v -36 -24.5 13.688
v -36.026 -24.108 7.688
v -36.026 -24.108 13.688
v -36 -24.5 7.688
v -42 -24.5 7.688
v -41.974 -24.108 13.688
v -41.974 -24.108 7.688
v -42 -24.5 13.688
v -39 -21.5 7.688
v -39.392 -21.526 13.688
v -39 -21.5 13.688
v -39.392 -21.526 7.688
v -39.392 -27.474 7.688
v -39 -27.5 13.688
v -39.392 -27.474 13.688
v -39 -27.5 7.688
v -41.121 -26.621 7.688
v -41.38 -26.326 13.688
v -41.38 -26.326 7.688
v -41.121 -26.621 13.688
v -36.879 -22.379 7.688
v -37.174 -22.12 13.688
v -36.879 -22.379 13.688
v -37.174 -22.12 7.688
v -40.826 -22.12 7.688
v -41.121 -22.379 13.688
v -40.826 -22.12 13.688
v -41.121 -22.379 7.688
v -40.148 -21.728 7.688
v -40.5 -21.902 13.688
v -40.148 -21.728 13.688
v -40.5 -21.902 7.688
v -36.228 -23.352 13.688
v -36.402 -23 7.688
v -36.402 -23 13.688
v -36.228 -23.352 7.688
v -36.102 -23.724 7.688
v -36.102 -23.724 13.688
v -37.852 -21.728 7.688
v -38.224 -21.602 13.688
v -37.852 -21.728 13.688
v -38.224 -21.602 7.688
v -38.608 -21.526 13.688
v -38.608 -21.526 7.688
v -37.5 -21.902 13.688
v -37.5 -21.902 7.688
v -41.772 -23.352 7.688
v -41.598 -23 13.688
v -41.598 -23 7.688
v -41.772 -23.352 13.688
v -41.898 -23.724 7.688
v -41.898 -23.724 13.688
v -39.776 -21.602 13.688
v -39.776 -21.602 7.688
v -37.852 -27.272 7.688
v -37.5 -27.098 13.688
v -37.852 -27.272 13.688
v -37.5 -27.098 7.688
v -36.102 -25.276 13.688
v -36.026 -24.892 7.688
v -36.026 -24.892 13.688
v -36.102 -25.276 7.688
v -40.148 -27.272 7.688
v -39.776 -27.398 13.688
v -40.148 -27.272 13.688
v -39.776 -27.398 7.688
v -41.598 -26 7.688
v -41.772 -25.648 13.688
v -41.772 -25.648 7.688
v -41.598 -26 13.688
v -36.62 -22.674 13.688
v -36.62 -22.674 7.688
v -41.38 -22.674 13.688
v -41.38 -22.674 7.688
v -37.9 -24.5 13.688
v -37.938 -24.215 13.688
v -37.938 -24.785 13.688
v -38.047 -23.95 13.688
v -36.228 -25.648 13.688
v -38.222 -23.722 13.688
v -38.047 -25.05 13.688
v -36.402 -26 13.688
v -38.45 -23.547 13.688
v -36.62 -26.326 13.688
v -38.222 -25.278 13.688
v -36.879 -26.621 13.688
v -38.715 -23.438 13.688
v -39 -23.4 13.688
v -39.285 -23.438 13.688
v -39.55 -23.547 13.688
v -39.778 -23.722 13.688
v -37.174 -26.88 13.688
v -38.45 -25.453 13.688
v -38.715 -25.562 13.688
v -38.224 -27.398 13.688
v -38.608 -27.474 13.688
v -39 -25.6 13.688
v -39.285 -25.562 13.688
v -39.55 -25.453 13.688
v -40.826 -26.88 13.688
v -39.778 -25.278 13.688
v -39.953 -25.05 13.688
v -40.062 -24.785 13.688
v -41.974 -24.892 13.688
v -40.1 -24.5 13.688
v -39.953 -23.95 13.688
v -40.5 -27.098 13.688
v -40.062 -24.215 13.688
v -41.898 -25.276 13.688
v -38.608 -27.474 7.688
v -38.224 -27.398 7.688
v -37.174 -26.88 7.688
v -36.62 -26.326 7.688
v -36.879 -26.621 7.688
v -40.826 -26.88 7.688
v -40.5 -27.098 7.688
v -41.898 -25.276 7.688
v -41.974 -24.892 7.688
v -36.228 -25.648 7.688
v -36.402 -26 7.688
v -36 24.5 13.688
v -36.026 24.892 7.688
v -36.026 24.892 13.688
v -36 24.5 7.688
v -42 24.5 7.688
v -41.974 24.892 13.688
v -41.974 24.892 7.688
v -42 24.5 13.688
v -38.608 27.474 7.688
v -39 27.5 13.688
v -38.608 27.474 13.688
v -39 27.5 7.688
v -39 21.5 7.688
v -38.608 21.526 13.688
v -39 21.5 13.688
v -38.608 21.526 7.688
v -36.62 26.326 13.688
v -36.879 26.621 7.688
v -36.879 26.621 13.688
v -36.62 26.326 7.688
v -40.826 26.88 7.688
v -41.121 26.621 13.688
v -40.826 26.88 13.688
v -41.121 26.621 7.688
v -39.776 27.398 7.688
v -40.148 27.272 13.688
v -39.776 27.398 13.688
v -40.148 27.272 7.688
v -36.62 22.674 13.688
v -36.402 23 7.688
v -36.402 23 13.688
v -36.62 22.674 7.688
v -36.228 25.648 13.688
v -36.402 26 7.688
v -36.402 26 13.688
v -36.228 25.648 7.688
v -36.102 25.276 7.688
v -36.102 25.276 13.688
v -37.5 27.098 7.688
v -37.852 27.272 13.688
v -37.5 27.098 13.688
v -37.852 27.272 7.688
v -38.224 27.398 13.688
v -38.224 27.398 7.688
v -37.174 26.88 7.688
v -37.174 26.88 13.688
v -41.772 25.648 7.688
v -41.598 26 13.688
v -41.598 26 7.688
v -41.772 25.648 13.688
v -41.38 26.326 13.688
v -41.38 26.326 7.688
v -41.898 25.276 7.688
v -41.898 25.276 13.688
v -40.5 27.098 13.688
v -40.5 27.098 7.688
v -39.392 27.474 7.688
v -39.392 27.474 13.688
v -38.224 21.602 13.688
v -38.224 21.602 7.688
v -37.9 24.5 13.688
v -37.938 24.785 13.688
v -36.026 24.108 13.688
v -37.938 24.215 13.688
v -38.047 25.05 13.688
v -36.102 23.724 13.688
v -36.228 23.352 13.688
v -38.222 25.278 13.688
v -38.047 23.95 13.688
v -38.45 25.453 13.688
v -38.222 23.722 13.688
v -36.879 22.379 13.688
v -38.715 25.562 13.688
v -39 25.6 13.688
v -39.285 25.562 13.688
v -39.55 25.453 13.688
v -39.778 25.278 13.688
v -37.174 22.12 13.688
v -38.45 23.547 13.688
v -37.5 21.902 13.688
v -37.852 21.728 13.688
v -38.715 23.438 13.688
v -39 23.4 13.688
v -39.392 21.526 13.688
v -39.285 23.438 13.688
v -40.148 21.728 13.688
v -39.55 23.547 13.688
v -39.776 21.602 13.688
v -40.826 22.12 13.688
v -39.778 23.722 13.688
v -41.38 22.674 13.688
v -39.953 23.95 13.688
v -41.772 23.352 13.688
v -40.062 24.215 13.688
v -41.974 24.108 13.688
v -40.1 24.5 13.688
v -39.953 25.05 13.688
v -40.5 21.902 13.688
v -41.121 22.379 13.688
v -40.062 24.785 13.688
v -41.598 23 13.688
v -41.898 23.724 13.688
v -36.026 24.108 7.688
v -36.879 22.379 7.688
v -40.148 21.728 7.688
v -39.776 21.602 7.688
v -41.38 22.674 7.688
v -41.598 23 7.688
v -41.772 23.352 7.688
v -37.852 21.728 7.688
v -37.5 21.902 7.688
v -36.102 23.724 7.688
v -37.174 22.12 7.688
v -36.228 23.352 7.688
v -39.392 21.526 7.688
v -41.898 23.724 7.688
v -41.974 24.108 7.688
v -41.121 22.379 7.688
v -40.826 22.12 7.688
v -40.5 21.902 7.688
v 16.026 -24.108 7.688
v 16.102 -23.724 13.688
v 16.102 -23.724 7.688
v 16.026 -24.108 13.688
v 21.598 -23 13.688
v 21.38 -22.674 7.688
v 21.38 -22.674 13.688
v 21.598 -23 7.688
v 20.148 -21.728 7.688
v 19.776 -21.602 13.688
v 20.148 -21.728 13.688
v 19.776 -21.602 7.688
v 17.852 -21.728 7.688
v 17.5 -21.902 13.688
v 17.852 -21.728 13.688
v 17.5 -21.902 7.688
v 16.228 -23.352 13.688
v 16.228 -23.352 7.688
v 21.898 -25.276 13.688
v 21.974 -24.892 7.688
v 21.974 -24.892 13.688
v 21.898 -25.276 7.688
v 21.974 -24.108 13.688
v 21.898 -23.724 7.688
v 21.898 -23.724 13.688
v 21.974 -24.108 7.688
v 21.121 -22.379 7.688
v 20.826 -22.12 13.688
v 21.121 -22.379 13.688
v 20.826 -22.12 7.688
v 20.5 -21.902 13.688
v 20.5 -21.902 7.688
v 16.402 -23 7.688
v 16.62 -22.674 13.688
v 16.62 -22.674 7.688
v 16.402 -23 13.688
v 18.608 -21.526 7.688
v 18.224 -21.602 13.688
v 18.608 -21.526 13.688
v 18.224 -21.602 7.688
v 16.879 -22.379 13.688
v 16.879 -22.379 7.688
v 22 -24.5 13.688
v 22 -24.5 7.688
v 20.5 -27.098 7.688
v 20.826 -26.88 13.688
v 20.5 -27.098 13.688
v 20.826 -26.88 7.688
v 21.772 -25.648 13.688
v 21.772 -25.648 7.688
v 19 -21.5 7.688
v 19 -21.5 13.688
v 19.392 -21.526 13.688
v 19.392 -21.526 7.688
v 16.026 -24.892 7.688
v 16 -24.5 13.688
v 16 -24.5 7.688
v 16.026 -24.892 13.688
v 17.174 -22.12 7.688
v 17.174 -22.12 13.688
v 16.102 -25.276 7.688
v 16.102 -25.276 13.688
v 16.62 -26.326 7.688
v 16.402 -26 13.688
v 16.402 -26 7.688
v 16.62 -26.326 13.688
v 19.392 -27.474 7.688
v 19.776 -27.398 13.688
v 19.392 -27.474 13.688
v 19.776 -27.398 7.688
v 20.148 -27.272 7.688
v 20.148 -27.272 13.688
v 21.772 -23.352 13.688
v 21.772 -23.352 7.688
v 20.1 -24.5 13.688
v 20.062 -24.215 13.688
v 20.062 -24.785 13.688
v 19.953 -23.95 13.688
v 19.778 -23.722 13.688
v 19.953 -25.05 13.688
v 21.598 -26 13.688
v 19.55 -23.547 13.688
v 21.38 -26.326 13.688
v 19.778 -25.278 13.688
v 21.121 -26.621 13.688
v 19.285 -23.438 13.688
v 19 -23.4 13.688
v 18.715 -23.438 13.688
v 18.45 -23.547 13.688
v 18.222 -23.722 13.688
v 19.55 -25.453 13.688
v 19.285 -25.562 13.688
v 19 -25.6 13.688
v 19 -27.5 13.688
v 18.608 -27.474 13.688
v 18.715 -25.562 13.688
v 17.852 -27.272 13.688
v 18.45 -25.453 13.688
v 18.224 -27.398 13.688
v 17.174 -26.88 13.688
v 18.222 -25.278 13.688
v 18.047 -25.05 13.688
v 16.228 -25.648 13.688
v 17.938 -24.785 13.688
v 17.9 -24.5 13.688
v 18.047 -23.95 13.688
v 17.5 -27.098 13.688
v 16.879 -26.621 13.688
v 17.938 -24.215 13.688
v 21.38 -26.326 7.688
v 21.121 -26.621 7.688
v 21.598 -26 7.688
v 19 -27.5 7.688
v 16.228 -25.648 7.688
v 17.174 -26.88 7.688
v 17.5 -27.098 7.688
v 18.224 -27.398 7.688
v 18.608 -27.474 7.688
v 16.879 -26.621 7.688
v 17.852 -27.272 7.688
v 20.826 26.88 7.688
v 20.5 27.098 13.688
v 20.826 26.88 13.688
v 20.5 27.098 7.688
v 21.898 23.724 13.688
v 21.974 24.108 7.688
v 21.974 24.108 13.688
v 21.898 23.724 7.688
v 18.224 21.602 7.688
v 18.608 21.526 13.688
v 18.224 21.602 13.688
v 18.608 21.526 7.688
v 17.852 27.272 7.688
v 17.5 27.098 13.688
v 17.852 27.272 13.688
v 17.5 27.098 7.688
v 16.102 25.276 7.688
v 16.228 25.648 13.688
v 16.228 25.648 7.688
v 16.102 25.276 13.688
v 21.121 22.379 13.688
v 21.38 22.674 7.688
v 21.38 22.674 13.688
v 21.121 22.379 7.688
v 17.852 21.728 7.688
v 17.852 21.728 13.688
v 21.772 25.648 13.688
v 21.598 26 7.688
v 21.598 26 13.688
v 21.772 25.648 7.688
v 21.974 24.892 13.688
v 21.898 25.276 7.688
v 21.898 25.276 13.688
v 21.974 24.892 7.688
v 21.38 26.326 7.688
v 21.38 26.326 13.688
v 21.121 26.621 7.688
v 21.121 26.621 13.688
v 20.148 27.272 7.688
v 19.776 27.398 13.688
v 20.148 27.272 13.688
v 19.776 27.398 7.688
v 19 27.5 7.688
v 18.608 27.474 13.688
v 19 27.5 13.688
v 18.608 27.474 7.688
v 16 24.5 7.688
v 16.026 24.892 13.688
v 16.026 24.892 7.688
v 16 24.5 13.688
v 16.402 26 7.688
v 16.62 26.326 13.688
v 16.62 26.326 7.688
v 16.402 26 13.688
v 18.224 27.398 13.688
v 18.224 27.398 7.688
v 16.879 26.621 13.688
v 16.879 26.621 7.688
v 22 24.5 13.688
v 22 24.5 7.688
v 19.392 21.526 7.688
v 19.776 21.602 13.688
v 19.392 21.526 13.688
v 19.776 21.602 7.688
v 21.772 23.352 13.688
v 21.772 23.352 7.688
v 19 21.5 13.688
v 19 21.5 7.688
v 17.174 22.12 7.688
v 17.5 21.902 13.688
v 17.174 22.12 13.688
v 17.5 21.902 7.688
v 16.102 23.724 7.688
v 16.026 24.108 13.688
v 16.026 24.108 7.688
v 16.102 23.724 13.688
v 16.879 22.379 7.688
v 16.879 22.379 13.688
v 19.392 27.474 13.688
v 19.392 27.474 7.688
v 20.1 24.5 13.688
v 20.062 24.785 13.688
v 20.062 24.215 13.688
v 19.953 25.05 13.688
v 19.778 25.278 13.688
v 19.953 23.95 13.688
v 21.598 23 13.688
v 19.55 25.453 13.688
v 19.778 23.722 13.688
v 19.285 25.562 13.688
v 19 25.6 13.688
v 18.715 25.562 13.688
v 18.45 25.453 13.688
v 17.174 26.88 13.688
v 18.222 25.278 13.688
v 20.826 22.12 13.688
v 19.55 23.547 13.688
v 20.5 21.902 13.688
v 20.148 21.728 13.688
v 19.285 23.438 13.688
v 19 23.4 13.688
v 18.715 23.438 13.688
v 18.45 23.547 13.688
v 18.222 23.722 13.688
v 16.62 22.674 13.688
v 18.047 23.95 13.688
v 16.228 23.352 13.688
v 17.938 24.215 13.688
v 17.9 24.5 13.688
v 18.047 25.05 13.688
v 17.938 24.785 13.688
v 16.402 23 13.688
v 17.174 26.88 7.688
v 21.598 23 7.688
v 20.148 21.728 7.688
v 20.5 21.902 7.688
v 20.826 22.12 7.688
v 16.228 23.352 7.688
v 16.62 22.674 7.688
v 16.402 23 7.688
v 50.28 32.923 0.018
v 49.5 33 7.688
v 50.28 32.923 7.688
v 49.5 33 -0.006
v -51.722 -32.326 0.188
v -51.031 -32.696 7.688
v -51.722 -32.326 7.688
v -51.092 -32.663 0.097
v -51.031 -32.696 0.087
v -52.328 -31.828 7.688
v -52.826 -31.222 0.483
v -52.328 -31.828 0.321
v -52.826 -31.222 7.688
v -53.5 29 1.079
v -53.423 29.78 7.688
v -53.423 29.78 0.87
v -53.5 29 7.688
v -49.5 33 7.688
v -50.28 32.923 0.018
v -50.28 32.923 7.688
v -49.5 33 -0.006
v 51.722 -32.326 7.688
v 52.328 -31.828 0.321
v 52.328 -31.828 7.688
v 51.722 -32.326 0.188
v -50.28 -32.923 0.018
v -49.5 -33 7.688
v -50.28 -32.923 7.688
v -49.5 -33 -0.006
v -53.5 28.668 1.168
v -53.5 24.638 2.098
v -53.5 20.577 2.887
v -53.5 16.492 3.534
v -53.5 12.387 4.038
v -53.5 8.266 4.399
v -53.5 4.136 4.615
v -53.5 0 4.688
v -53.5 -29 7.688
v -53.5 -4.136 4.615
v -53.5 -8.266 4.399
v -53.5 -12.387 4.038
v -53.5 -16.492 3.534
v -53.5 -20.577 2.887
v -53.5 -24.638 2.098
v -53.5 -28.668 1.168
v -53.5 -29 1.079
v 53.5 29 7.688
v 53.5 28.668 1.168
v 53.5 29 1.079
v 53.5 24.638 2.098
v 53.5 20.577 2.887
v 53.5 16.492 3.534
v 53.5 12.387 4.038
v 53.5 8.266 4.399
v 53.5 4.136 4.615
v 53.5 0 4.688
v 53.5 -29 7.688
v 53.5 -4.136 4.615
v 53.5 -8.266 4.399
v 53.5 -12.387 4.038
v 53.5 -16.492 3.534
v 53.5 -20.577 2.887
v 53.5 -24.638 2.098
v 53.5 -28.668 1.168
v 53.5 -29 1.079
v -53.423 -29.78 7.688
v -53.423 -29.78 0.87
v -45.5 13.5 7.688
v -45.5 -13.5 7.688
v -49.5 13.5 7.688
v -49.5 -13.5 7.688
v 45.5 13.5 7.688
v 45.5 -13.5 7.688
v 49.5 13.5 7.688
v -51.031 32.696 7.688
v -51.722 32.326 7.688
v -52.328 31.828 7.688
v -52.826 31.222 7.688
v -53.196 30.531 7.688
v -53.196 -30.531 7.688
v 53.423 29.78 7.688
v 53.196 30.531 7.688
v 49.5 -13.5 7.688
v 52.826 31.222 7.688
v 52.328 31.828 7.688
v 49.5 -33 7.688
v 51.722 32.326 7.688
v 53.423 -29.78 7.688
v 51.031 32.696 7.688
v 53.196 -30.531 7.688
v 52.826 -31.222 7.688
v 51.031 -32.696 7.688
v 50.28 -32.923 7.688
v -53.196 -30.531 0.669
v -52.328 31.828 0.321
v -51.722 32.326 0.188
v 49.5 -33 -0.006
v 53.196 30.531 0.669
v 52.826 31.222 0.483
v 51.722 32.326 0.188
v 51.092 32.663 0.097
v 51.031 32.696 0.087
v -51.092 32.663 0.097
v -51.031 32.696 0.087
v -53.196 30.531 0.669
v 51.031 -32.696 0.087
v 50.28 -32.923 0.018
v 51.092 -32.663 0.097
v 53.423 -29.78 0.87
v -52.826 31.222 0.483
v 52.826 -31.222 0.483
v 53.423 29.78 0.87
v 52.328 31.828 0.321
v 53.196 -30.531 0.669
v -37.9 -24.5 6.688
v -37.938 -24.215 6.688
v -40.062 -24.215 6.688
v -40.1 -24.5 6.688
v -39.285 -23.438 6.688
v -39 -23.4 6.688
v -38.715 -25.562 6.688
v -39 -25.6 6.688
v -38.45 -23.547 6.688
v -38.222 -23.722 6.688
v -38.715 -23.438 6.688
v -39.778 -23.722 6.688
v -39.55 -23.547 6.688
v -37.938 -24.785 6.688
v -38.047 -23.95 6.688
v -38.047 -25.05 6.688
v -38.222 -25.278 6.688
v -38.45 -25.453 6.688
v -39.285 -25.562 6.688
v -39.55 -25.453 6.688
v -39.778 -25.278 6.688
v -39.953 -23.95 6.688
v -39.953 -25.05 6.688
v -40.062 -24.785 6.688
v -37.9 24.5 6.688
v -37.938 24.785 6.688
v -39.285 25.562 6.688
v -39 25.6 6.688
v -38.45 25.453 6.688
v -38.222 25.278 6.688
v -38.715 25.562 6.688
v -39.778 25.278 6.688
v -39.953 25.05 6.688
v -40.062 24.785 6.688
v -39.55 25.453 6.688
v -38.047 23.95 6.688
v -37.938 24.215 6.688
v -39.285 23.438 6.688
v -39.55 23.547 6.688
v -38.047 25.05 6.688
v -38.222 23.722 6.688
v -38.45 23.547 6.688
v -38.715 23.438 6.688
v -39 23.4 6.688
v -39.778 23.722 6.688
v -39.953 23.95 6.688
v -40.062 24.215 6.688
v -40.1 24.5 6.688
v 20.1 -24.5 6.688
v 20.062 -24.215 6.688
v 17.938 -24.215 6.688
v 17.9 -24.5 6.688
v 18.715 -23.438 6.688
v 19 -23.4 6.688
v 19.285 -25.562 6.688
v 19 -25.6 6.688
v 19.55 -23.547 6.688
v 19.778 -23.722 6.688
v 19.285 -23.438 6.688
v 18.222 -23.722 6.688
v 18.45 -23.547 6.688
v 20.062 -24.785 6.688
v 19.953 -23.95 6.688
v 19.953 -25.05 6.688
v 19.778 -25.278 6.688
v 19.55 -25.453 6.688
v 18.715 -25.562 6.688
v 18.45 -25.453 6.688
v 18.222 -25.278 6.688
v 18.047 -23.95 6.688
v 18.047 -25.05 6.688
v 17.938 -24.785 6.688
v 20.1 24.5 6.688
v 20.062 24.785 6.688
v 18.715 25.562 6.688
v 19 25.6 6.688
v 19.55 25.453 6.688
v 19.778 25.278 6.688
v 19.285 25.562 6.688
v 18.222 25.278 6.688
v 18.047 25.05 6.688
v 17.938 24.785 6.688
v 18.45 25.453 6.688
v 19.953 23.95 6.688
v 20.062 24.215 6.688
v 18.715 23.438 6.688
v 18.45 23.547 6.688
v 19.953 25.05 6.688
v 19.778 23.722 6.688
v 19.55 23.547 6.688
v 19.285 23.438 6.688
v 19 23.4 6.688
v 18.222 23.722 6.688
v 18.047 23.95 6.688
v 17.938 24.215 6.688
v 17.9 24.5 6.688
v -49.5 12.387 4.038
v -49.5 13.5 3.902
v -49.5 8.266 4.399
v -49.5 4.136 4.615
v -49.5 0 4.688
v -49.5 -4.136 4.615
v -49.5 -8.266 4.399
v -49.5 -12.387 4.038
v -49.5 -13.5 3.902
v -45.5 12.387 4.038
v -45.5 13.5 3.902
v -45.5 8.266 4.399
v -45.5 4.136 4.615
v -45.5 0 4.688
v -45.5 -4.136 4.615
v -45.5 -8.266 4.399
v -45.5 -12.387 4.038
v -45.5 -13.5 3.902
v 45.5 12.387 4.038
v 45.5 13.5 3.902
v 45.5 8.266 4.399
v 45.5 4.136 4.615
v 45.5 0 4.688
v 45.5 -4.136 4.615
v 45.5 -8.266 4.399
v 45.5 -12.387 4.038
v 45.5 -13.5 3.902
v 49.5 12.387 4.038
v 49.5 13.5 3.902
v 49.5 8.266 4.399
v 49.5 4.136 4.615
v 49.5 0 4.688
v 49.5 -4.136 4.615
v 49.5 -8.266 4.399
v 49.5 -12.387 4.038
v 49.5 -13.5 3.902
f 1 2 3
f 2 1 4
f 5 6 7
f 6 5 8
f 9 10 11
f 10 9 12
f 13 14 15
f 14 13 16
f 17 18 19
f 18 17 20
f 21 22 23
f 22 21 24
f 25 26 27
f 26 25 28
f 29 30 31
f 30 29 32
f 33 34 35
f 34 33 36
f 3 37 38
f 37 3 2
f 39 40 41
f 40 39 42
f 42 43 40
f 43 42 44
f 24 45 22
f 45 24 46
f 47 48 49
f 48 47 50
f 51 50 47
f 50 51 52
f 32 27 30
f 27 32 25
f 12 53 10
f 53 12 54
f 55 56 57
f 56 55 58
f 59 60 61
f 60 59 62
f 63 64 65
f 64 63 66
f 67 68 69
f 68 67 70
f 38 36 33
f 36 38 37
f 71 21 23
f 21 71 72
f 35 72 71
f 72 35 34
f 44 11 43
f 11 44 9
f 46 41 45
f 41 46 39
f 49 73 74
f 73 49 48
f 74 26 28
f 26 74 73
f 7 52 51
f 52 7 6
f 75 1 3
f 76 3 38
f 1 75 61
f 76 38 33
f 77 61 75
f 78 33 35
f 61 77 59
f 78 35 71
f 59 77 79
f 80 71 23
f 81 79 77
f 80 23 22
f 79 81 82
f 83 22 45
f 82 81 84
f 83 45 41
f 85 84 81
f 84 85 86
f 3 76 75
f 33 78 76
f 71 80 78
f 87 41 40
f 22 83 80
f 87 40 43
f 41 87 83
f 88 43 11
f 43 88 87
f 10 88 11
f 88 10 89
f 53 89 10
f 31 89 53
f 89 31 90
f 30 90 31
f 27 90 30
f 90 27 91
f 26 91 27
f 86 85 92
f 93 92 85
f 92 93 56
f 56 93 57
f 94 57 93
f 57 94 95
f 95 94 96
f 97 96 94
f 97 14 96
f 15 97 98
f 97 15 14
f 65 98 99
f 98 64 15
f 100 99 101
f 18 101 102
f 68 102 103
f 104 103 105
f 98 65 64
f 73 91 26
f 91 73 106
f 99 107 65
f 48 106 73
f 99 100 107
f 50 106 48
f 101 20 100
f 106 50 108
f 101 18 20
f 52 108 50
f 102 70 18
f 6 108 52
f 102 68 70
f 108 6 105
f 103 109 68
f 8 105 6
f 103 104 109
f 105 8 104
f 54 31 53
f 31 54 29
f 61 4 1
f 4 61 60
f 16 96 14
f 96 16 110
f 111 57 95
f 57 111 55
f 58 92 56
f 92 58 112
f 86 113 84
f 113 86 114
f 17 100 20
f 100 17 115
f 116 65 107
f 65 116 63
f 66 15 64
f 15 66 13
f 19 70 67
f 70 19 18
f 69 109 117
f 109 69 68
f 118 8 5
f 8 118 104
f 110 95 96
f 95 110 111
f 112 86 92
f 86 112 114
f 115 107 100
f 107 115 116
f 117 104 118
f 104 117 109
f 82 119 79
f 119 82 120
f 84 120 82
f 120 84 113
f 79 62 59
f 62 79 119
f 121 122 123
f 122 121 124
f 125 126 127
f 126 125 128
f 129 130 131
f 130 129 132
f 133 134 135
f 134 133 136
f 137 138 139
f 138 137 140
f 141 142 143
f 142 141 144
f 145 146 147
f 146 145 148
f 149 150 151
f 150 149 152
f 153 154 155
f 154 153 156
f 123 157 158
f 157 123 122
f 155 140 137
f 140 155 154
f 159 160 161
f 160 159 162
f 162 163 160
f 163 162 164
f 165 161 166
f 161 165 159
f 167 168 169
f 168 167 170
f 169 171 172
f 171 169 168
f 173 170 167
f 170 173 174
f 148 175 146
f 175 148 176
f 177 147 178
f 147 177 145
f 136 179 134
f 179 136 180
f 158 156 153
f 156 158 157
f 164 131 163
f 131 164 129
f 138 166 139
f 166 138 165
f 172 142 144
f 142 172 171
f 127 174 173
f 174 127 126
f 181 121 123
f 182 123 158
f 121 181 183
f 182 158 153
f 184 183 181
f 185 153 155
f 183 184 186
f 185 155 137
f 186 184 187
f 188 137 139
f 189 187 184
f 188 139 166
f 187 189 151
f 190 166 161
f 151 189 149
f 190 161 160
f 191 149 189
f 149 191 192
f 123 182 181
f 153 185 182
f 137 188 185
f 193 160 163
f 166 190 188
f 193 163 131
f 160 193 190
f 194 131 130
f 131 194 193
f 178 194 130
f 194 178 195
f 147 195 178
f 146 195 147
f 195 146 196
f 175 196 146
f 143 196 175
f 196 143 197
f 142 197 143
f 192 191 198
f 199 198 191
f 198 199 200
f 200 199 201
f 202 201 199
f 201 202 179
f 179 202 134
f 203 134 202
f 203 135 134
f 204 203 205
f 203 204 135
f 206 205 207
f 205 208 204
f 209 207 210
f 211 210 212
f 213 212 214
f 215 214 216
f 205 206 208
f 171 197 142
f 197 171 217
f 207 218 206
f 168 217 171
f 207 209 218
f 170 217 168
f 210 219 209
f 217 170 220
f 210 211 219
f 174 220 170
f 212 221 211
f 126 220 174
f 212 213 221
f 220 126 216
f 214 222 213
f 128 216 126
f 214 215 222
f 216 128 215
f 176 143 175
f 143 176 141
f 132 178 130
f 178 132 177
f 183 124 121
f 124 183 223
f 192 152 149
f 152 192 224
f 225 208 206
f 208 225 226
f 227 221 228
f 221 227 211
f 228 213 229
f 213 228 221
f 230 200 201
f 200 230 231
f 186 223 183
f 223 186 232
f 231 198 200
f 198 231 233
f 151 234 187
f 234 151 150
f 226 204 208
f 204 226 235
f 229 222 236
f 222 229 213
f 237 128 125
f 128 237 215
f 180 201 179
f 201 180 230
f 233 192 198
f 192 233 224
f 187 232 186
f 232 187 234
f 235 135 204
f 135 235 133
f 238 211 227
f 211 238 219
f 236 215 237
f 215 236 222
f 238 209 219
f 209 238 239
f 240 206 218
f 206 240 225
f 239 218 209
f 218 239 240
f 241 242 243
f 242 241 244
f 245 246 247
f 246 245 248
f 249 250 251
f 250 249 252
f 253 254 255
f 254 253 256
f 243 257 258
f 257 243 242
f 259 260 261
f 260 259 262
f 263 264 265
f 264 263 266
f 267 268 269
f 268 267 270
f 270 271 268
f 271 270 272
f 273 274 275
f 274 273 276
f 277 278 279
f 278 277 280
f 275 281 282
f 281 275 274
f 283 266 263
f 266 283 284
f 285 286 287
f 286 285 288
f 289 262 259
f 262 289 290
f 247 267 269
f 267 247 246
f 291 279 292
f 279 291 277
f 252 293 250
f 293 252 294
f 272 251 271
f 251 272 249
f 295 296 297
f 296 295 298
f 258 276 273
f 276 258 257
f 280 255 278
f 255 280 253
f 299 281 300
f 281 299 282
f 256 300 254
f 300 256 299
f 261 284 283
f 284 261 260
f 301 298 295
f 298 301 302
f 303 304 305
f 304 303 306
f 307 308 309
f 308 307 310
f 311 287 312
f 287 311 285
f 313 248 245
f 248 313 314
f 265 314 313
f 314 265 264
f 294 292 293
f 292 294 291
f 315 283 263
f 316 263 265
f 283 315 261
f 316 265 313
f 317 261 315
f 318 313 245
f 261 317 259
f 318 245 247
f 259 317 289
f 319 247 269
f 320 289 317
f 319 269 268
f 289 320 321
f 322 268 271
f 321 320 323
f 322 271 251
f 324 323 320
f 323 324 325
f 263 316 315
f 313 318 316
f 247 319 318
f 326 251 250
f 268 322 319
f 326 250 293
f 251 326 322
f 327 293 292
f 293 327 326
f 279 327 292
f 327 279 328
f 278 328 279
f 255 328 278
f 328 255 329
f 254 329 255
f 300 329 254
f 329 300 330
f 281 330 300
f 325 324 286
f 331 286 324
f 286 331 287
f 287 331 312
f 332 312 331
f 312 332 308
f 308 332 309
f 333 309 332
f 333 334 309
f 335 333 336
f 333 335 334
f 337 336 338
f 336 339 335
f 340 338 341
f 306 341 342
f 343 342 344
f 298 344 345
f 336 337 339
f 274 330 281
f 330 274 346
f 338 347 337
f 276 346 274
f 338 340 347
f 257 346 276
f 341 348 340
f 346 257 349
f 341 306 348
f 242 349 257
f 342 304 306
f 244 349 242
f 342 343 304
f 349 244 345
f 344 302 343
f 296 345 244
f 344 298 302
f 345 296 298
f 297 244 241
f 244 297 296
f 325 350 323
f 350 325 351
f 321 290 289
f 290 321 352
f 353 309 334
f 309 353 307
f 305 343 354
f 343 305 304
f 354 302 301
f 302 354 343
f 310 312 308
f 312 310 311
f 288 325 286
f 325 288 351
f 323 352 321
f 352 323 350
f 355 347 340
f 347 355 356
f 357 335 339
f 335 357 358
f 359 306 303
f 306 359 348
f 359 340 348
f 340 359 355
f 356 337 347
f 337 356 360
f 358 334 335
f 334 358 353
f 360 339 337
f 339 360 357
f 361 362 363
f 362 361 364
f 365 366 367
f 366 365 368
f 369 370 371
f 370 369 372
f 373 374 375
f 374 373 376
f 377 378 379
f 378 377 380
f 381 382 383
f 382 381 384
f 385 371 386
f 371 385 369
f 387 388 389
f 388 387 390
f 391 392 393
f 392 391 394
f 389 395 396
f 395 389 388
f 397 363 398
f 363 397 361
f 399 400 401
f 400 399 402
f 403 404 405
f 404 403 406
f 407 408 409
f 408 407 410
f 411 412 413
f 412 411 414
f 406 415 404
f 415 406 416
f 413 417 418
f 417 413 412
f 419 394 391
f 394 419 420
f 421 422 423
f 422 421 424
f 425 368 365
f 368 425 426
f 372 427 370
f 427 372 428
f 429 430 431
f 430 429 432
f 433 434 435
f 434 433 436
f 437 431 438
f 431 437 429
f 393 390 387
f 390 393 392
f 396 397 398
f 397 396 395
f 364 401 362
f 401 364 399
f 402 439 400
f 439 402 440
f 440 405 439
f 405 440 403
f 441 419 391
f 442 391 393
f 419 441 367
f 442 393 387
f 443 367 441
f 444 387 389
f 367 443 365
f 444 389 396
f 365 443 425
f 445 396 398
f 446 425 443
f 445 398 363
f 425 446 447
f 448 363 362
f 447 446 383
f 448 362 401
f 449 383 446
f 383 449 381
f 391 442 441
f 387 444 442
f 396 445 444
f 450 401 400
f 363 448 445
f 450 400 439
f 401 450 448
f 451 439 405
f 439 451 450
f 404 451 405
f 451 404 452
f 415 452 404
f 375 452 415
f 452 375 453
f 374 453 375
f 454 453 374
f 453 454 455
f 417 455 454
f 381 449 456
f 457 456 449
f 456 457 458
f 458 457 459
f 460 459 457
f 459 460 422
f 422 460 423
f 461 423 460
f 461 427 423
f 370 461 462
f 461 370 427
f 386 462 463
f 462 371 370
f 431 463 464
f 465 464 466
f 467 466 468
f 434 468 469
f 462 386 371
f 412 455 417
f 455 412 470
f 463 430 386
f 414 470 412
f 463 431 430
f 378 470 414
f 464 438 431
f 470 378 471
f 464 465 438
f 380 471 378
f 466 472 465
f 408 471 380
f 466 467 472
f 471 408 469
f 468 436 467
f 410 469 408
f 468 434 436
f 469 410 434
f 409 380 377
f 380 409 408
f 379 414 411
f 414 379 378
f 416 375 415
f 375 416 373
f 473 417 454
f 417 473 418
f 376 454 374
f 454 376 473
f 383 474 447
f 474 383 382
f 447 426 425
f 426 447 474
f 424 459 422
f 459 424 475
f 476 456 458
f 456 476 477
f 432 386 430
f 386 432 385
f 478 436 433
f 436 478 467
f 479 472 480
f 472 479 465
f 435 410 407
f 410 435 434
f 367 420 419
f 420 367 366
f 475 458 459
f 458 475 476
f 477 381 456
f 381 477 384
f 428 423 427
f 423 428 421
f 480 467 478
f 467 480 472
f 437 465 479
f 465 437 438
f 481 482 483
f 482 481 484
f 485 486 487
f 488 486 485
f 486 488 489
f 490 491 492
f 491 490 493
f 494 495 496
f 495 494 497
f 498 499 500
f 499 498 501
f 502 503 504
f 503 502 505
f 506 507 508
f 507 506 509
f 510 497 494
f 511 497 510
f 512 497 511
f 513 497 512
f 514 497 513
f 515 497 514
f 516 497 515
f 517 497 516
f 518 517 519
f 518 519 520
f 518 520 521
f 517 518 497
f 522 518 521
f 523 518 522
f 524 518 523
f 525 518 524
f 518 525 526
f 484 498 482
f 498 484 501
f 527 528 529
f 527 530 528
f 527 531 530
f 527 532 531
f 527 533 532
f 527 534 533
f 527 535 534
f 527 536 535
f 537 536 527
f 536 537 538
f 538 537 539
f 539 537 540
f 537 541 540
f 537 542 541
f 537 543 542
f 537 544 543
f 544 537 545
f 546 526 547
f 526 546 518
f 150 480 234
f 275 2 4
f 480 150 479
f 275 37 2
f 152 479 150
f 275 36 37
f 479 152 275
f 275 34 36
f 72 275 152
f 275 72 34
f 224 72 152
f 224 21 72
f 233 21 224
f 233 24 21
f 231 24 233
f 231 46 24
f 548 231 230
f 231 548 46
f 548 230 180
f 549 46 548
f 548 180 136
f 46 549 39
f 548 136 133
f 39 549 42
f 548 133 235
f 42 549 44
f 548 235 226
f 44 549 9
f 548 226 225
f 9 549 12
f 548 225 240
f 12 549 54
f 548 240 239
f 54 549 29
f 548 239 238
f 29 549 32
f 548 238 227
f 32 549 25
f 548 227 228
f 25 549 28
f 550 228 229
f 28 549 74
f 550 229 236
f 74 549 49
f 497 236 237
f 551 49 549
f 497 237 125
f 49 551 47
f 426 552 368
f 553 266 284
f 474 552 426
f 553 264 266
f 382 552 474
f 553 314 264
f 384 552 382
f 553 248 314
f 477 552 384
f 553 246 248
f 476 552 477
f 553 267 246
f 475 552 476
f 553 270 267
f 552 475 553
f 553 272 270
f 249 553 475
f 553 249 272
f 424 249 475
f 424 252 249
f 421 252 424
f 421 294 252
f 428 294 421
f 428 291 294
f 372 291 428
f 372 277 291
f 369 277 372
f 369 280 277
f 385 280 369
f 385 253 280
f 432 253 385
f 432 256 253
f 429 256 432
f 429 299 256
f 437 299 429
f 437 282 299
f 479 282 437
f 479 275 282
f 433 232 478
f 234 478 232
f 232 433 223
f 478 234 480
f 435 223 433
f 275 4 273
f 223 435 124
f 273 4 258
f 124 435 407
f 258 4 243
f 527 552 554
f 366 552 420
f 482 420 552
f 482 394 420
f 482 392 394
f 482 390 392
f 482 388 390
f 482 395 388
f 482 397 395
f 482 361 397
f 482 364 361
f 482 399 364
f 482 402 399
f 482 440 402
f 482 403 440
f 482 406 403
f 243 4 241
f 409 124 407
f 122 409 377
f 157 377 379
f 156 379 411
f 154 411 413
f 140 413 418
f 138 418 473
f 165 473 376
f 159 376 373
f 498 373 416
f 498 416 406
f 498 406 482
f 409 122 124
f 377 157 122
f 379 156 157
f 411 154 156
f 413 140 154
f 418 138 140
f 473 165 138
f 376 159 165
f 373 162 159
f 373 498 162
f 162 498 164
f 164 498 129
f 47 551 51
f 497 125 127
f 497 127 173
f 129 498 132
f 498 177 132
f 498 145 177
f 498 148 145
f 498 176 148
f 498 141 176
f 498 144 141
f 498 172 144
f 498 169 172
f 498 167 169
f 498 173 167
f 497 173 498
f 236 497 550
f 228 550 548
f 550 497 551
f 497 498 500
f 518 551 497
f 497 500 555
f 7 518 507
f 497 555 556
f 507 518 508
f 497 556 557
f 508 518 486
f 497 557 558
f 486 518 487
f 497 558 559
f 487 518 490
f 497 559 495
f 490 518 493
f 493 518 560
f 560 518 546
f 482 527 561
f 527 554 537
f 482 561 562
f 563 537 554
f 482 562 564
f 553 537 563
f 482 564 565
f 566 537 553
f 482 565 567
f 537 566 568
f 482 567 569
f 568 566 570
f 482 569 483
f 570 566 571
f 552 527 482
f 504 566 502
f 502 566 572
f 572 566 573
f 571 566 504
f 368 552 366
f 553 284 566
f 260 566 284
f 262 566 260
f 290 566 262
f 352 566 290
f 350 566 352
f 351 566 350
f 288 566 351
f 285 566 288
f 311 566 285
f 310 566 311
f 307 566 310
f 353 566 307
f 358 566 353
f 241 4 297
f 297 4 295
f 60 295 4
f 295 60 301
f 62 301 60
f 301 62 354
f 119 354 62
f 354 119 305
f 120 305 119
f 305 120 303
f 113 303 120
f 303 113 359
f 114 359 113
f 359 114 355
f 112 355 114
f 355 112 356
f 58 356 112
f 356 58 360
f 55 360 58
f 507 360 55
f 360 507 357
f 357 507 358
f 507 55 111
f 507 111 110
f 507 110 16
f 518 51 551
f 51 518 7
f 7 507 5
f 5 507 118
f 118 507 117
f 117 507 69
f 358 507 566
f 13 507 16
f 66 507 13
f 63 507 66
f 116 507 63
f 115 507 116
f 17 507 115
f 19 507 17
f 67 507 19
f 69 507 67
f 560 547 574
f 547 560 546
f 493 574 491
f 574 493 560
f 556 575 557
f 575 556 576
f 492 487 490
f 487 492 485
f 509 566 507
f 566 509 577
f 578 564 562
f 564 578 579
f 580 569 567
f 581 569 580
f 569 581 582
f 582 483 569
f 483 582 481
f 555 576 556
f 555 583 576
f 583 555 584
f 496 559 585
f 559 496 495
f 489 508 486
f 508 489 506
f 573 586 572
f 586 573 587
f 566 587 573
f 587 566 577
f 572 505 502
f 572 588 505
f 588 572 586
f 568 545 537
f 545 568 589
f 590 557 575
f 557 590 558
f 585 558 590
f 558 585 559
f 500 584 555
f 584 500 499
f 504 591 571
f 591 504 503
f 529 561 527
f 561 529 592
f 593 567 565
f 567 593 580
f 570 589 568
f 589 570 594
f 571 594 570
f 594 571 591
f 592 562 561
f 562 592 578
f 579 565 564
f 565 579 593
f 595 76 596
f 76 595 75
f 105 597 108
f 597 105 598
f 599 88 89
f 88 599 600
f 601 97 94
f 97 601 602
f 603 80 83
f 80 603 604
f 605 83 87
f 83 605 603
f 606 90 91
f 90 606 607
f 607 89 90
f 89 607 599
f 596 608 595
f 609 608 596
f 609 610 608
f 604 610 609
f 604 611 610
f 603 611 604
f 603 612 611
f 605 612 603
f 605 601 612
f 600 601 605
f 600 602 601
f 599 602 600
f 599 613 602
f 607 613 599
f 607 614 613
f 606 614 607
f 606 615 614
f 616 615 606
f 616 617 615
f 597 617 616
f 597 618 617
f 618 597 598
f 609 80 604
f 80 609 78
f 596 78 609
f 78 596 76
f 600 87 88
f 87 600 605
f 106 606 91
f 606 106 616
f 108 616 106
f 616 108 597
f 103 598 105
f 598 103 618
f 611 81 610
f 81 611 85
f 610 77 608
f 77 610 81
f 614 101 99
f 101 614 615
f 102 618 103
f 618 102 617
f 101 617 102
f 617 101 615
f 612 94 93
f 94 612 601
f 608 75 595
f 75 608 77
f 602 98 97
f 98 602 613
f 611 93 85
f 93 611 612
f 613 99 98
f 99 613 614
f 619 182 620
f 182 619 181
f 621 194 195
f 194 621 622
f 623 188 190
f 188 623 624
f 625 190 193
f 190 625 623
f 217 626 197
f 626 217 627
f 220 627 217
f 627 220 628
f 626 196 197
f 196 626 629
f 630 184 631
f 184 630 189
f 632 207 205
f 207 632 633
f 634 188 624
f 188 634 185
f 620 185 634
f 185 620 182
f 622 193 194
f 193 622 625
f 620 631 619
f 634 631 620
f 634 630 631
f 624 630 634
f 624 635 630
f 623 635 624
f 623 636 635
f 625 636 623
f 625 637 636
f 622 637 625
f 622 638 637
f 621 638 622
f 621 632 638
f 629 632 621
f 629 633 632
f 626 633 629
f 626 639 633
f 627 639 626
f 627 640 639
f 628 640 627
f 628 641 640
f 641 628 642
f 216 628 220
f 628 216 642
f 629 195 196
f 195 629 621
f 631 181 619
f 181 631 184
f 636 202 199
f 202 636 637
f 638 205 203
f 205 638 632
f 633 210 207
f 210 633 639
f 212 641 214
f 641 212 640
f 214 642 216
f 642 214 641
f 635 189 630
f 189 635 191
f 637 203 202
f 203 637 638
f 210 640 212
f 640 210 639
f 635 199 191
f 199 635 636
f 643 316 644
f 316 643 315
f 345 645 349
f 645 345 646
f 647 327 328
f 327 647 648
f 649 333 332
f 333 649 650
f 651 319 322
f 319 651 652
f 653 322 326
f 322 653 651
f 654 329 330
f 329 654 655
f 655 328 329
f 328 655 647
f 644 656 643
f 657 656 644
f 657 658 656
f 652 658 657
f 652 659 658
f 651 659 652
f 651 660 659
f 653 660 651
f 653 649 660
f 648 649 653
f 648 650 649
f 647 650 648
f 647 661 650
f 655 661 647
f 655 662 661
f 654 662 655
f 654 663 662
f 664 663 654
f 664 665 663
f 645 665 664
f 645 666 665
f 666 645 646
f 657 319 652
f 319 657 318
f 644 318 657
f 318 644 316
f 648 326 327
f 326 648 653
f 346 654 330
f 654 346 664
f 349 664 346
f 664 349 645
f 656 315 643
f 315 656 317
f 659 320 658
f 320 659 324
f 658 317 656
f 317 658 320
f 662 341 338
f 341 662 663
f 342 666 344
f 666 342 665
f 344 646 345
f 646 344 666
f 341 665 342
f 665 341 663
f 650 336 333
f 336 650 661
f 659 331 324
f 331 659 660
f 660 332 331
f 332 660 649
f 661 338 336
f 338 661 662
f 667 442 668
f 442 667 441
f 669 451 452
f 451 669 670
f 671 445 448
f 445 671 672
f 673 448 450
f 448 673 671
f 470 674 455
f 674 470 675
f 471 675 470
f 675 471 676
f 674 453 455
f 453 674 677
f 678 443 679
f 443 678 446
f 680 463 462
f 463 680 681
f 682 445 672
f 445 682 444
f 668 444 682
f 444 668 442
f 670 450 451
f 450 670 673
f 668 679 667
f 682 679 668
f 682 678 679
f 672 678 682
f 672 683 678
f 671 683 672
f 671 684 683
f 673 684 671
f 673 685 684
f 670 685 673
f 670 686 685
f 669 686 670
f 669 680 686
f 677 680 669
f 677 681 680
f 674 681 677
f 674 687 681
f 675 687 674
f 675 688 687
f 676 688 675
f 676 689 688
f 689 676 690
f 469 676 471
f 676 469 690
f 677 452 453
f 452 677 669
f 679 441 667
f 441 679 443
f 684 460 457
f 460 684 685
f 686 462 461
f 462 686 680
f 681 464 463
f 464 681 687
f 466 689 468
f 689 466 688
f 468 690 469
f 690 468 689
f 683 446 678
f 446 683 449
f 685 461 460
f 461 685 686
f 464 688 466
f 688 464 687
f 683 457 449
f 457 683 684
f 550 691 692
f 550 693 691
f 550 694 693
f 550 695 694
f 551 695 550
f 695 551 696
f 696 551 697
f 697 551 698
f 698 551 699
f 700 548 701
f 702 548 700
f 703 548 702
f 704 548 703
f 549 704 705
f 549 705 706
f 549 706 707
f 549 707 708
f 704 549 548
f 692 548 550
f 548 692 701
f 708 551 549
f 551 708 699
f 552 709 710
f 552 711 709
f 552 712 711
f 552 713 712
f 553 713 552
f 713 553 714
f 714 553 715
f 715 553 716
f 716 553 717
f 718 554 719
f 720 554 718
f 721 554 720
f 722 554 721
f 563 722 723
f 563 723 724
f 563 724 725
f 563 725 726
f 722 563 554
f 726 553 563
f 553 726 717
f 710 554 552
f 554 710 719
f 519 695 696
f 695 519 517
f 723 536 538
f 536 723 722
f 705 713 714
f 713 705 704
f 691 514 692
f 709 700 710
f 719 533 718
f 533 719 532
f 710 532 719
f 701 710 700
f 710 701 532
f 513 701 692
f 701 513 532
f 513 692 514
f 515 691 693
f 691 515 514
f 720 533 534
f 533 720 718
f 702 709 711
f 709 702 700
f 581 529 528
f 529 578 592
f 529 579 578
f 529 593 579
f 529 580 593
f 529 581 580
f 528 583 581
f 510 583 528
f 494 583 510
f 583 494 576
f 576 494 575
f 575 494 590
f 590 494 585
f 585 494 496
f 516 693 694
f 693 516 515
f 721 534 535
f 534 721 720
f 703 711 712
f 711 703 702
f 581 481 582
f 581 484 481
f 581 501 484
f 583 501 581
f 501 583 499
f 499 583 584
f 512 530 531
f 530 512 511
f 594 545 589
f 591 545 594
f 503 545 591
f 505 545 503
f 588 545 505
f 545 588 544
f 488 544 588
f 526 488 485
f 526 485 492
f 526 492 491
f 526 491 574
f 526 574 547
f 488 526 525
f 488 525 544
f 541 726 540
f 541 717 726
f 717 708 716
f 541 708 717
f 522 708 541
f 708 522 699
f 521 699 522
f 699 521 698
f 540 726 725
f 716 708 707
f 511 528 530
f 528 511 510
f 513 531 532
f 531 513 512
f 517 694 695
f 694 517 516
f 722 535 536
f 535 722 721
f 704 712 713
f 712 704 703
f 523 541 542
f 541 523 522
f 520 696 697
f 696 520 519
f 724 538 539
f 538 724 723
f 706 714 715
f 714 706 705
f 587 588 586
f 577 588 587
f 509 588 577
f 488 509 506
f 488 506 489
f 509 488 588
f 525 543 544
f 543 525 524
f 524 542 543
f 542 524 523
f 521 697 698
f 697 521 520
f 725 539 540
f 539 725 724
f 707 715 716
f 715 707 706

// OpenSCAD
// Copyright (C) 2026 Arun Venkataswamy
//
// This file is part of PushNav.
//
// PushNav is free software: you can redistribute it and/or modify it
// under the terms of the GNU General Public License as published by
// the Free Software Foundation, either version 3 of the License, or
// (at your option) any later version.
//
// PushNav is distributed in the hope that it will be useful, but
// WITHOUT ANY WARRANTY; without even the implied warranty of
// MERCHANTABILITY or FITNESS FOR A PARTICULAR PURPOSE. See the GNU
// General Public License for more details.
//
// You should have received a copy of the GNU General Public License
// along with PushNav. If not, see <https://www.gnu.org/licenses/>.

// ============================================================
// PushNav Pi 4 / Pi 5 Tube Tray
// ============================================================
//
// An open tray that carries a Raspberry Pi 4 or 5 on the telescope
// tube, for PushNav headless. Its base is curved to the tube like the
// tube shoe (tube_shoe.scad), and it sticks on with 3M VHB tape; a
// 25 mm Velcro strap through the end slots and round the tube is
// optional insurance. Open sides keep every port reachable and let a
// Pi 5's Active Cooler breathe — use one on a Pi 5, which runs the
// solver continuously.
//
// The Pi's long edge runs along the tube. Mount it near the tube shoe
// so the camera's 1 m lead reaches without strain, and with the USB-C
// power side facing where your power bank lives.
//
// MEASURE YOUR TUBE: set tube_od = circumference / π (as tube_shoe).
//
// HARDWARE: 4 × M2.5 × 6 screws (self-tapping, or machine screws that
// cut their own thread in the 2.2 mm holes); VHB tape ~ 90 × 50 mm;
// optional 25 mm Velcro strap.
//
// PRINTING: base down, with TREE supports "on build plate only" — they
// are needed only under the shallow curved underside. PETG preferred.

$fn = 180;

/* Telescope tube */
tube_od          = 237;     // Apertura AD8: measured 744 mm round / π

/* Raspberry Pi 4 / 5 — same board outline and hole pattern */
pi_length        = 85;
pi_width         = 56;
pi_hole_x        = [3.5, 61.5];   // from the board's corner
pi_hole_y        = [3.5, 52.5];

/* Tray */
margin           = 5;       // plate beyond the board, each side (Y)
floor_thickness  = 3;       // at the centre line
standoff_height  = 6;       // clears the microSD and the Pi 4's underside parts
standoff_dia     = 6;
pilot_dia        = 2.2;     // M2.5 self-tap
pilot_depth      = 7;
strap_width      = 27;      // slot for a 25 mm strap
strap_slot       = 4;       // slot size along the tube
strap_end        = 4;       // plate beyond each slot

// ============================================================
// DERIVED
// ============================================================

tube_r      = tube_od / 2;
tray_width  = pi_width + 2 * margin;
tray_length = pi_length + 2 * (strap_end + strap_slot + 3);
edge_sag    = tube_r - sqrt(tube_r * tube_r - (tray_width / 2) * (tray_width / 2));

assert(strap_width < tray_width - 6, "strap slot too wide for the tray");

// X along the tube, Y across, Z away from it; tube top line at Z = 0
module pi45_tray() {
    difference() {
        union() {
            translate([-tray_length / 2, -tray_width / 2, -edge_sag - 1])
                _rounded_block(tray_length, tray_width,
                               floor_thickness + edge_sag + 1, 4);
            for (hx = pi_hole_x, hy = pi_hole_y)
                translate([hx - pi_length / 2, hy - pi_width / 2, floor_thickness - 0.01])
                    cylinder(d = standoff_dia, h = standoff_height + 0.01, $fn = 48);
        }

        // Tube
        translate([-tray_length, 0, -tube_r])
            rotate([0, 90, 0])
                cylinder(r = tube_r, h = 2 * tray_length);

        // Pilots
        for (hx = pi_hole_x, hy = pi_hole_y)
            translate([hx - pi_length / 2, hy - pi_width / 2,
                       floor_thickness + standoff_height - pilot_depth])
                cylinder(d = pilot_dia, h = pilot_depth + 1, $fn = 24);

        // Strap slots, one at each end
        for (s = [-1, 1])
            translate([s * (tray_length / 2 - strap_end - strap_slot / 2) - strap_slot / 2,
                       -strap_width / 2, -edge_sag - 2])
                cube([strap_slot, strap_width, floor_thickness + edge_sag + 4]);
    }
}

module _rounded_block(l, w, h, r) {
    hull()
        for (x = [r, l - r], y = [r, w - r])
            translate([x, y, 0]) cylinder(r = r, h = h, $fn = 32);
}

// Print orientation: lowest point (the curved edges) on the bed
translate([0, 0, edge_sag]) pi45_tray();

// Board outline, preview only
if ($preview)
    %translate([-pi_length / 2, -pi_width / 2,
                edge_sag + floor_thickness + standoff_height])
        cube([pi_length, pi_width, 1.6]);
